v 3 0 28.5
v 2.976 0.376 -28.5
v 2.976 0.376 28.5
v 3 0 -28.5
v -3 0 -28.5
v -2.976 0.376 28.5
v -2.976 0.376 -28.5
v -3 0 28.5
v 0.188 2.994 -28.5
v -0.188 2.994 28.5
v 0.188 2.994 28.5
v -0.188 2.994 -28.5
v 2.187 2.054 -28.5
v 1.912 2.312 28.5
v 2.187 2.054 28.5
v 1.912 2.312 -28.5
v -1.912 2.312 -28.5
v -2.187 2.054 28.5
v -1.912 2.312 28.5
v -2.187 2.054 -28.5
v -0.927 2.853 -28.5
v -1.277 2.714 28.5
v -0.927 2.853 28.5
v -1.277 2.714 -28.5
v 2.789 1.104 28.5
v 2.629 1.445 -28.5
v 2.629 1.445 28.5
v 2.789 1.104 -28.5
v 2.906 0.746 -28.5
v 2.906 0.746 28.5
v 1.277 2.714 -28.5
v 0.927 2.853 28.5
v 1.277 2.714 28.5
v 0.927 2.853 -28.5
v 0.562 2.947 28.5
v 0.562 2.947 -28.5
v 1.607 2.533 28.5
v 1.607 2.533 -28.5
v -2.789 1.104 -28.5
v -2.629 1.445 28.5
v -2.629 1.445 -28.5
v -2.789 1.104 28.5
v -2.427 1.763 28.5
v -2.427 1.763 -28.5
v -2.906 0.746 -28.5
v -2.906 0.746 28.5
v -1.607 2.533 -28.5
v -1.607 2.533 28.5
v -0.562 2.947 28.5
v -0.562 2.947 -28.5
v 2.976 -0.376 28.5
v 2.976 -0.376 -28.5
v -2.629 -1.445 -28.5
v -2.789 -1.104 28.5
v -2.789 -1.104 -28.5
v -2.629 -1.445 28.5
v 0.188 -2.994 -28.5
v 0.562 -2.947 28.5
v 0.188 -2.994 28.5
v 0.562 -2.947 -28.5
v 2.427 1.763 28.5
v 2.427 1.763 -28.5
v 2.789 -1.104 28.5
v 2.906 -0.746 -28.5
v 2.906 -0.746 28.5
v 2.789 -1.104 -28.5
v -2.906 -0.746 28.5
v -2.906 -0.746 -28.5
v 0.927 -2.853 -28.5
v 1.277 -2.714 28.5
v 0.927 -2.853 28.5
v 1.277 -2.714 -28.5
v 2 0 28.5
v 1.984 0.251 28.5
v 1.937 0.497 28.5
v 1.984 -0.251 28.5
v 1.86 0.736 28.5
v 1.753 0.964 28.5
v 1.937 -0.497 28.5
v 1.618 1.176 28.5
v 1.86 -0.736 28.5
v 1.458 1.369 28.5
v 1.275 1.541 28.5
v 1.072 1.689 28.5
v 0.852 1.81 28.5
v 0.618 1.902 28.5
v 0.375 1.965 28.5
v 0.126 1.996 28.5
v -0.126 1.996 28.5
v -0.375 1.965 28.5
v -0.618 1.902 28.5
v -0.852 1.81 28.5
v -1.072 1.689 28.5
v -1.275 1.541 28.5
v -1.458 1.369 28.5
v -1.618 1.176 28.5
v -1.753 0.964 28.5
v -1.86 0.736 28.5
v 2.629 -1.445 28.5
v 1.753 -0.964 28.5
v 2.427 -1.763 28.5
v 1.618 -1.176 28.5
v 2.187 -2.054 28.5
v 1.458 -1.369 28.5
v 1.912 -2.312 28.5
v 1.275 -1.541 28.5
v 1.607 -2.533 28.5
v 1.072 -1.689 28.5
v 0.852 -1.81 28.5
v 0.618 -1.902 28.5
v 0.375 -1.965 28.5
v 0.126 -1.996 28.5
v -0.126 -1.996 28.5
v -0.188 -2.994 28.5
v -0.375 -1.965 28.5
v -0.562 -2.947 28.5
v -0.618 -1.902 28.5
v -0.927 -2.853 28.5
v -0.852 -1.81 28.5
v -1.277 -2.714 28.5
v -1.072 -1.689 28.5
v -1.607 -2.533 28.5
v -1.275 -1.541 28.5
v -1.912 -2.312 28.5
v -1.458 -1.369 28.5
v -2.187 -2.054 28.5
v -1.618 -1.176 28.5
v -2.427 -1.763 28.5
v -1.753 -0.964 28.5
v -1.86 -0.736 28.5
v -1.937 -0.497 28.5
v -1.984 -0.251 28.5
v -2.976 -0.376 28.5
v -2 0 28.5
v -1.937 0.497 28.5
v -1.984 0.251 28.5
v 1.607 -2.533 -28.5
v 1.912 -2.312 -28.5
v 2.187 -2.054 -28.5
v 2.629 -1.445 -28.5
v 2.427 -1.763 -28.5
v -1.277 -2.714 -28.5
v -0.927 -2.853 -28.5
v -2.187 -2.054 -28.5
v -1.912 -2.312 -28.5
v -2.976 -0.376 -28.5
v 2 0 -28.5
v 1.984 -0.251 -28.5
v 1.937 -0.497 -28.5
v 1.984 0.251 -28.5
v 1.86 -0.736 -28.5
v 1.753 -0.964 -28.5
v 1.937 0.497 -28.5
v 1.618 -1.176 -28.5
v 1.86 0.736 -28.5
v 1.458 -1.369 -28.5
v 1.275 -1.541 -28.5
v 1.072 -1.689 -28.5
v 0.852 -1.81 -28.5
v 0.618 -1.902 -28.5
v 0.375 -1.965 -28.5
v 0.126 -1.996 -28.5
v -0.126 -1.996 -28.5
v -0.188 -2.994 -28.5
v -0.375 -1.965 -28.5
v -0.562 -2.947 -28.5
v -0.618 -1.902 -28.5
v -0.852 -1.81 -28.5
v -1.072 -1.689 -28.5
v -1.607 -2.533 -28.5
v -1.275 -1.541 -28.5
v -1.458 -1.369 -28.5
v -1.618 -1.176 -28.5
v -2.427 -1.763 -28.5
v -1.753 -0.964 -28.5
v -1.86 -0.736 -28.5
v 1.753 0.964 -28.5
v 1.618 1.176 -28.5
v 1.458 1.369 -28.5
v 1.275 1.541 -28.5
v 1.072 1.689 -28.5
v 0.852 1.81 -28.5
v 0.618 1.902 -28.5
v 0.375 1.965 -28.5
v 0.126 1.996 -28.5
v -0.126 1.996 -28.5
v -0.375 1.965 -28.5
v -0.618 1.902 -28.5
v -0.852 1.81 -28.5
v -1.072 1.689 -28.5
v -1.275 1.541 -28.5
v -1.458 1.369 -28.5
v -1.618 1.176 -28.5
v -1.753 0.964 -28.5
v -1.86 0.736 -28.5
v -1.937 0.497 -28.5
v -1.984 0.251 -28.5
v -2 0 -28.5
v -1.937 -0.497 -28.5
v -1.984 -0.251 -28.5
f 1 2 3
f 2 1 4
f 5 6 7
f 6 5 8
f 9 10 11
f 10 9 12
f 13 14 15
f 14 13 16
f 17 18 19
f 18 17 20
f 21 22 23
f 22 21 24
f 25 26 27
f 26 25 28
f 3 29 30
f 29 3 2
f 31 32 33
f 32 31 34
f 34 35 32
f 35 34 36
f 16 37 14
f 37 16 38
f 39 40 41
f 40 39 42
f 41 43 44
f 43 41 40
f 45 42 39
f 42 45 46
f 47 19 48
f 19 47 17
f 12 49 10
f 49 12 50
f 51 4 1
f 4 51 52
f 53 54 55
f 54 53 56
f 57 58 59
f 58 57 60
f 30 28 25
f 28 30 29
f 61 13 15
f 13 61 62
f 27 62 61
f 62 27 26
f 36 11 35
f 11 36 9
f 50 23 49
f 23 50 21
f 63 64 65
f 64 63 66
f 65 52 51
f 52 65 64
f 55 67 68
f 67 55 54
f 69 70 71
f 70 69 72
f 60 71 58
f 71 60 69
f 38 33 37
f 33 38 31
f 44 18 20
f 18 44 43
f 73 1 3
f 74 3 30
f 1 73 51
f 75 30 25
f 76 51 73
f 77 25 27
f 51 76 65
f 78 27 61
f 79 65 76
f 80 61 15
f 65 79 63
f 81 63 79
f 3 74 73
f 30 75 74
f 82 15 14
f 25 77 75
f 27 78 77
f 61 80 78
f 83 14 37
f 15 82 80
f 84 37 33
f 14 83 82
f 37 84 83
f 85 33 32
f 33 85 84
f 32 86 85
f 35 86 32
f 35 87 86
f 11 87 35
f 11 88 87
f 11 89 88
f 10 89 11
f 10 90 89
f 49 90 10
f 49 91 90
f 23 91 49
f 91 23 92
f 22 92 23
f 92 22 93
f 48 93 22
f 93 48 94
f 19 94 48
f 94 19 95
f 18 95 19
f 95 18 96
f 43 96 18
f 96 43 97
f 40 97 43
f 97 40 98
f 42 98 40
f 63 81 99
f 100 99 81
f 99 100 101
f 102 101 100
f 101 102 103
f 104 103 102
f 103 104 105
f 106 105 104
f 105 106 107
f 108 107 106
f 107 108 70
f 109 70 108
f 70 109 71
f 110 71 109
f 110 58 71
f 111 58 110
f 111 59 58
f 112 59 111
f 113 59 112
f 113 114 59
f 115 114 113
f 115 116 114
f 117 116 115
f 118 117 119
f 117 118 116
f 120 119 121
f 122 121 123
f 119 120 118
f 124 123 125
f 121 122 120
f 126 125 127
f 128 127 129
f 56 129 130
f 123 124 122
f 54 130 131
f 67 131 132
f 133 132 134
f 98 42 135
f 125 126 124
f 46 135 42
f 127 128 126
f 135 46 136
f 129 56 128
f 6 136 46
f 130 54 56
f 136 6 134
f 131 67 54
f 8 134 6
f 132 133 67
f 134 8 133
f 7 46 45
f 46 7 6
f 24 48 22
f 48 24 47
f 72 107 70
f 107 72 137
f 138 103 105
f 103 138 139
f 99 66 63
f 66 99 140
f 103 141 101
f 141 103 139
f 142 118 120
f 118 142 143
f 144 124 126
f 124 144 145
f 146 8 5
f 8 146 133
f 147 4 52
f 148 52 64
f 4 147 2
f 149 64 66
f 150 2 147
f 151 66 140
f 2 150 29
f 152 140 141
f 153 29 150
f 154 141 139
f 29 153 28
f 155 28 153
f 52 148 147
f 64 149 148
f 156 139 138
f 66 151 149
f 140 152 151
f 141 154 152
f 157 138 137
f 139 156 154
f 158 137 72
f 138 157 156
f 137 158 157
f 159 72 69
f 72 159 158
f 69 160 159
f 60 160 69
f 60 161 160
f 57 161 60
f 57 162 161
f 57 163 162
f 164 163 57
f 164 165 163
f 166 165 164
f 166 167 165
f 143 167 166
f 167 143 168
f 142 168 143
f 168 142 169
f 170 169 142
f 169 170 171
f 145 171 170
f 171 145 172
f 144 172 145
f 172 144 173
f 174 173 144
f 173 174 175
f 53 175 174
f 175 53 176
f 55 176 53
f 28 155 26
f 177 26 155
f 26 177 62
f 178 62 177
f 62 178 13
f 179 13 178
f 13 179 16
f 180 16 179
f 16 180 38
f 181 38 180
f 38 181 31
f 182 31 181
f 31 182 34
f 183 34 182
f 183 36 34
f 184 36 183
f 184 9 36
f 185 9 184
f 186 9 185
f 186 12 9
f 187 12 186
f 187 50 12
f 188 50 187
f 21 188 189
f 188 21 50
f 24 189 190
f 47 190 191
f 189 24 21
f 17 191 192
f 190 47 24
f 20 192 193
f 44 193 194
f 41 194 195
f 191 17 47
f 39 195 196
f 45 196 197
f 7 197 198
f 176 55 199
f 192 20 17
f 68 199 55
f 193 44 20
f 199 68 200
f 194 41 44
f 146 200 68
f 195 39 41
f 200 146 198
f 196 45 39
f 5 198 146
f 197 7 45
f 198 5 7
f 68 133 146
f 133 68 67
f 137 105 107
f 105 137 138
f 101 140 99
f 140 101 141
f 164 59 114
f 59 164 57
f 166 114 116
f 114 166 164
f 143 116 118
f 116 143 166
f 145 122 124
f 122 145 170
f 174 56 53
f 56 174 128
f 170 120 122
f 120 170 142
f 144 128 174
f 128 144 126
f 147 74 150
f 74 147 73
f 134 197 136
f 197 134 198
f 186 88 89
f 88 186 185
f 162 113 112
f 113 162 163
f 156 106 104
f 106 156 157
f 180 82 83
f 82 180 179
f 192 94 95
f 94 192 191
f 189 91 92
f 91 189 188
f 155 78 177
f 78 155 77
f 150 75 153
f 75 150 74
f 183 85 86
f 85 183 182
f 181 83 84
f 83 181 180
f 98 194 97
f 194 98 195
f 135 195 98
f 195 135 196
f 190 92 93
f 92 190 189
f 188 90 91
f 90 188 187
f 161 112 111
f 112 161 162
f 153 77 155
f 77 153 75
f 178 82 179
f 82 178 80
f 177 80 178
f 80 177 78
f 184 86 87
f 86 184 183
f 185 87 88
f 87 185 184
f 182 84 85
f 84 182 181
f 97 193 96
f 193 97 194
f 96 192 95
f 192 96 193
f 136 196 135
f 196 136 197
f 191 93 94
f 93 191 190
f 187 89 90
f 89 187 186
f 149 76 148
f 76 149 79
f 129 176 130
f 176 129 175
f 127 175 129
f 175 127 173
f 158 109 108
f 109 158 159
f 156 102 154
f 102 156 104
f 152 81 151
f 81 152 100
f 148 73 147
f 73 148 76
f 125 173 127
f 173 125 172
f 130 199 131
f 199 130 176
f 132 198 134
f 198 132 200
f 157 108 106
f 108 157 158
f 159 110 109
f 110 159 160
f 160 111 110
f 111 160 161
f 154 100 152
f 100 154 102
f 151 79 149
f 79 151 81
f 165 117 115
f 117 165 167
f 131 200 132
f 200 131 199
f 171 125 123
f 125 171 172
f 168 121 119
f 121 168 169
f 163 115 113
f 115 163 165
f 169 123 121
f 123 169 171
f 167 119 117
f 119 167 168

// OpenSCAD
$fn = 50;


difference() {
	union() {
		translate(v = [0, 0, -28.5000000000]) {
			cylinder(h = 57, r = 3.0000000000);
		}
	}
	union() {
		translate(v = [0, 0, -100.0000000000]) {
			cylinder(h = 200, r = 2.0000000000);
		}
	}
}
